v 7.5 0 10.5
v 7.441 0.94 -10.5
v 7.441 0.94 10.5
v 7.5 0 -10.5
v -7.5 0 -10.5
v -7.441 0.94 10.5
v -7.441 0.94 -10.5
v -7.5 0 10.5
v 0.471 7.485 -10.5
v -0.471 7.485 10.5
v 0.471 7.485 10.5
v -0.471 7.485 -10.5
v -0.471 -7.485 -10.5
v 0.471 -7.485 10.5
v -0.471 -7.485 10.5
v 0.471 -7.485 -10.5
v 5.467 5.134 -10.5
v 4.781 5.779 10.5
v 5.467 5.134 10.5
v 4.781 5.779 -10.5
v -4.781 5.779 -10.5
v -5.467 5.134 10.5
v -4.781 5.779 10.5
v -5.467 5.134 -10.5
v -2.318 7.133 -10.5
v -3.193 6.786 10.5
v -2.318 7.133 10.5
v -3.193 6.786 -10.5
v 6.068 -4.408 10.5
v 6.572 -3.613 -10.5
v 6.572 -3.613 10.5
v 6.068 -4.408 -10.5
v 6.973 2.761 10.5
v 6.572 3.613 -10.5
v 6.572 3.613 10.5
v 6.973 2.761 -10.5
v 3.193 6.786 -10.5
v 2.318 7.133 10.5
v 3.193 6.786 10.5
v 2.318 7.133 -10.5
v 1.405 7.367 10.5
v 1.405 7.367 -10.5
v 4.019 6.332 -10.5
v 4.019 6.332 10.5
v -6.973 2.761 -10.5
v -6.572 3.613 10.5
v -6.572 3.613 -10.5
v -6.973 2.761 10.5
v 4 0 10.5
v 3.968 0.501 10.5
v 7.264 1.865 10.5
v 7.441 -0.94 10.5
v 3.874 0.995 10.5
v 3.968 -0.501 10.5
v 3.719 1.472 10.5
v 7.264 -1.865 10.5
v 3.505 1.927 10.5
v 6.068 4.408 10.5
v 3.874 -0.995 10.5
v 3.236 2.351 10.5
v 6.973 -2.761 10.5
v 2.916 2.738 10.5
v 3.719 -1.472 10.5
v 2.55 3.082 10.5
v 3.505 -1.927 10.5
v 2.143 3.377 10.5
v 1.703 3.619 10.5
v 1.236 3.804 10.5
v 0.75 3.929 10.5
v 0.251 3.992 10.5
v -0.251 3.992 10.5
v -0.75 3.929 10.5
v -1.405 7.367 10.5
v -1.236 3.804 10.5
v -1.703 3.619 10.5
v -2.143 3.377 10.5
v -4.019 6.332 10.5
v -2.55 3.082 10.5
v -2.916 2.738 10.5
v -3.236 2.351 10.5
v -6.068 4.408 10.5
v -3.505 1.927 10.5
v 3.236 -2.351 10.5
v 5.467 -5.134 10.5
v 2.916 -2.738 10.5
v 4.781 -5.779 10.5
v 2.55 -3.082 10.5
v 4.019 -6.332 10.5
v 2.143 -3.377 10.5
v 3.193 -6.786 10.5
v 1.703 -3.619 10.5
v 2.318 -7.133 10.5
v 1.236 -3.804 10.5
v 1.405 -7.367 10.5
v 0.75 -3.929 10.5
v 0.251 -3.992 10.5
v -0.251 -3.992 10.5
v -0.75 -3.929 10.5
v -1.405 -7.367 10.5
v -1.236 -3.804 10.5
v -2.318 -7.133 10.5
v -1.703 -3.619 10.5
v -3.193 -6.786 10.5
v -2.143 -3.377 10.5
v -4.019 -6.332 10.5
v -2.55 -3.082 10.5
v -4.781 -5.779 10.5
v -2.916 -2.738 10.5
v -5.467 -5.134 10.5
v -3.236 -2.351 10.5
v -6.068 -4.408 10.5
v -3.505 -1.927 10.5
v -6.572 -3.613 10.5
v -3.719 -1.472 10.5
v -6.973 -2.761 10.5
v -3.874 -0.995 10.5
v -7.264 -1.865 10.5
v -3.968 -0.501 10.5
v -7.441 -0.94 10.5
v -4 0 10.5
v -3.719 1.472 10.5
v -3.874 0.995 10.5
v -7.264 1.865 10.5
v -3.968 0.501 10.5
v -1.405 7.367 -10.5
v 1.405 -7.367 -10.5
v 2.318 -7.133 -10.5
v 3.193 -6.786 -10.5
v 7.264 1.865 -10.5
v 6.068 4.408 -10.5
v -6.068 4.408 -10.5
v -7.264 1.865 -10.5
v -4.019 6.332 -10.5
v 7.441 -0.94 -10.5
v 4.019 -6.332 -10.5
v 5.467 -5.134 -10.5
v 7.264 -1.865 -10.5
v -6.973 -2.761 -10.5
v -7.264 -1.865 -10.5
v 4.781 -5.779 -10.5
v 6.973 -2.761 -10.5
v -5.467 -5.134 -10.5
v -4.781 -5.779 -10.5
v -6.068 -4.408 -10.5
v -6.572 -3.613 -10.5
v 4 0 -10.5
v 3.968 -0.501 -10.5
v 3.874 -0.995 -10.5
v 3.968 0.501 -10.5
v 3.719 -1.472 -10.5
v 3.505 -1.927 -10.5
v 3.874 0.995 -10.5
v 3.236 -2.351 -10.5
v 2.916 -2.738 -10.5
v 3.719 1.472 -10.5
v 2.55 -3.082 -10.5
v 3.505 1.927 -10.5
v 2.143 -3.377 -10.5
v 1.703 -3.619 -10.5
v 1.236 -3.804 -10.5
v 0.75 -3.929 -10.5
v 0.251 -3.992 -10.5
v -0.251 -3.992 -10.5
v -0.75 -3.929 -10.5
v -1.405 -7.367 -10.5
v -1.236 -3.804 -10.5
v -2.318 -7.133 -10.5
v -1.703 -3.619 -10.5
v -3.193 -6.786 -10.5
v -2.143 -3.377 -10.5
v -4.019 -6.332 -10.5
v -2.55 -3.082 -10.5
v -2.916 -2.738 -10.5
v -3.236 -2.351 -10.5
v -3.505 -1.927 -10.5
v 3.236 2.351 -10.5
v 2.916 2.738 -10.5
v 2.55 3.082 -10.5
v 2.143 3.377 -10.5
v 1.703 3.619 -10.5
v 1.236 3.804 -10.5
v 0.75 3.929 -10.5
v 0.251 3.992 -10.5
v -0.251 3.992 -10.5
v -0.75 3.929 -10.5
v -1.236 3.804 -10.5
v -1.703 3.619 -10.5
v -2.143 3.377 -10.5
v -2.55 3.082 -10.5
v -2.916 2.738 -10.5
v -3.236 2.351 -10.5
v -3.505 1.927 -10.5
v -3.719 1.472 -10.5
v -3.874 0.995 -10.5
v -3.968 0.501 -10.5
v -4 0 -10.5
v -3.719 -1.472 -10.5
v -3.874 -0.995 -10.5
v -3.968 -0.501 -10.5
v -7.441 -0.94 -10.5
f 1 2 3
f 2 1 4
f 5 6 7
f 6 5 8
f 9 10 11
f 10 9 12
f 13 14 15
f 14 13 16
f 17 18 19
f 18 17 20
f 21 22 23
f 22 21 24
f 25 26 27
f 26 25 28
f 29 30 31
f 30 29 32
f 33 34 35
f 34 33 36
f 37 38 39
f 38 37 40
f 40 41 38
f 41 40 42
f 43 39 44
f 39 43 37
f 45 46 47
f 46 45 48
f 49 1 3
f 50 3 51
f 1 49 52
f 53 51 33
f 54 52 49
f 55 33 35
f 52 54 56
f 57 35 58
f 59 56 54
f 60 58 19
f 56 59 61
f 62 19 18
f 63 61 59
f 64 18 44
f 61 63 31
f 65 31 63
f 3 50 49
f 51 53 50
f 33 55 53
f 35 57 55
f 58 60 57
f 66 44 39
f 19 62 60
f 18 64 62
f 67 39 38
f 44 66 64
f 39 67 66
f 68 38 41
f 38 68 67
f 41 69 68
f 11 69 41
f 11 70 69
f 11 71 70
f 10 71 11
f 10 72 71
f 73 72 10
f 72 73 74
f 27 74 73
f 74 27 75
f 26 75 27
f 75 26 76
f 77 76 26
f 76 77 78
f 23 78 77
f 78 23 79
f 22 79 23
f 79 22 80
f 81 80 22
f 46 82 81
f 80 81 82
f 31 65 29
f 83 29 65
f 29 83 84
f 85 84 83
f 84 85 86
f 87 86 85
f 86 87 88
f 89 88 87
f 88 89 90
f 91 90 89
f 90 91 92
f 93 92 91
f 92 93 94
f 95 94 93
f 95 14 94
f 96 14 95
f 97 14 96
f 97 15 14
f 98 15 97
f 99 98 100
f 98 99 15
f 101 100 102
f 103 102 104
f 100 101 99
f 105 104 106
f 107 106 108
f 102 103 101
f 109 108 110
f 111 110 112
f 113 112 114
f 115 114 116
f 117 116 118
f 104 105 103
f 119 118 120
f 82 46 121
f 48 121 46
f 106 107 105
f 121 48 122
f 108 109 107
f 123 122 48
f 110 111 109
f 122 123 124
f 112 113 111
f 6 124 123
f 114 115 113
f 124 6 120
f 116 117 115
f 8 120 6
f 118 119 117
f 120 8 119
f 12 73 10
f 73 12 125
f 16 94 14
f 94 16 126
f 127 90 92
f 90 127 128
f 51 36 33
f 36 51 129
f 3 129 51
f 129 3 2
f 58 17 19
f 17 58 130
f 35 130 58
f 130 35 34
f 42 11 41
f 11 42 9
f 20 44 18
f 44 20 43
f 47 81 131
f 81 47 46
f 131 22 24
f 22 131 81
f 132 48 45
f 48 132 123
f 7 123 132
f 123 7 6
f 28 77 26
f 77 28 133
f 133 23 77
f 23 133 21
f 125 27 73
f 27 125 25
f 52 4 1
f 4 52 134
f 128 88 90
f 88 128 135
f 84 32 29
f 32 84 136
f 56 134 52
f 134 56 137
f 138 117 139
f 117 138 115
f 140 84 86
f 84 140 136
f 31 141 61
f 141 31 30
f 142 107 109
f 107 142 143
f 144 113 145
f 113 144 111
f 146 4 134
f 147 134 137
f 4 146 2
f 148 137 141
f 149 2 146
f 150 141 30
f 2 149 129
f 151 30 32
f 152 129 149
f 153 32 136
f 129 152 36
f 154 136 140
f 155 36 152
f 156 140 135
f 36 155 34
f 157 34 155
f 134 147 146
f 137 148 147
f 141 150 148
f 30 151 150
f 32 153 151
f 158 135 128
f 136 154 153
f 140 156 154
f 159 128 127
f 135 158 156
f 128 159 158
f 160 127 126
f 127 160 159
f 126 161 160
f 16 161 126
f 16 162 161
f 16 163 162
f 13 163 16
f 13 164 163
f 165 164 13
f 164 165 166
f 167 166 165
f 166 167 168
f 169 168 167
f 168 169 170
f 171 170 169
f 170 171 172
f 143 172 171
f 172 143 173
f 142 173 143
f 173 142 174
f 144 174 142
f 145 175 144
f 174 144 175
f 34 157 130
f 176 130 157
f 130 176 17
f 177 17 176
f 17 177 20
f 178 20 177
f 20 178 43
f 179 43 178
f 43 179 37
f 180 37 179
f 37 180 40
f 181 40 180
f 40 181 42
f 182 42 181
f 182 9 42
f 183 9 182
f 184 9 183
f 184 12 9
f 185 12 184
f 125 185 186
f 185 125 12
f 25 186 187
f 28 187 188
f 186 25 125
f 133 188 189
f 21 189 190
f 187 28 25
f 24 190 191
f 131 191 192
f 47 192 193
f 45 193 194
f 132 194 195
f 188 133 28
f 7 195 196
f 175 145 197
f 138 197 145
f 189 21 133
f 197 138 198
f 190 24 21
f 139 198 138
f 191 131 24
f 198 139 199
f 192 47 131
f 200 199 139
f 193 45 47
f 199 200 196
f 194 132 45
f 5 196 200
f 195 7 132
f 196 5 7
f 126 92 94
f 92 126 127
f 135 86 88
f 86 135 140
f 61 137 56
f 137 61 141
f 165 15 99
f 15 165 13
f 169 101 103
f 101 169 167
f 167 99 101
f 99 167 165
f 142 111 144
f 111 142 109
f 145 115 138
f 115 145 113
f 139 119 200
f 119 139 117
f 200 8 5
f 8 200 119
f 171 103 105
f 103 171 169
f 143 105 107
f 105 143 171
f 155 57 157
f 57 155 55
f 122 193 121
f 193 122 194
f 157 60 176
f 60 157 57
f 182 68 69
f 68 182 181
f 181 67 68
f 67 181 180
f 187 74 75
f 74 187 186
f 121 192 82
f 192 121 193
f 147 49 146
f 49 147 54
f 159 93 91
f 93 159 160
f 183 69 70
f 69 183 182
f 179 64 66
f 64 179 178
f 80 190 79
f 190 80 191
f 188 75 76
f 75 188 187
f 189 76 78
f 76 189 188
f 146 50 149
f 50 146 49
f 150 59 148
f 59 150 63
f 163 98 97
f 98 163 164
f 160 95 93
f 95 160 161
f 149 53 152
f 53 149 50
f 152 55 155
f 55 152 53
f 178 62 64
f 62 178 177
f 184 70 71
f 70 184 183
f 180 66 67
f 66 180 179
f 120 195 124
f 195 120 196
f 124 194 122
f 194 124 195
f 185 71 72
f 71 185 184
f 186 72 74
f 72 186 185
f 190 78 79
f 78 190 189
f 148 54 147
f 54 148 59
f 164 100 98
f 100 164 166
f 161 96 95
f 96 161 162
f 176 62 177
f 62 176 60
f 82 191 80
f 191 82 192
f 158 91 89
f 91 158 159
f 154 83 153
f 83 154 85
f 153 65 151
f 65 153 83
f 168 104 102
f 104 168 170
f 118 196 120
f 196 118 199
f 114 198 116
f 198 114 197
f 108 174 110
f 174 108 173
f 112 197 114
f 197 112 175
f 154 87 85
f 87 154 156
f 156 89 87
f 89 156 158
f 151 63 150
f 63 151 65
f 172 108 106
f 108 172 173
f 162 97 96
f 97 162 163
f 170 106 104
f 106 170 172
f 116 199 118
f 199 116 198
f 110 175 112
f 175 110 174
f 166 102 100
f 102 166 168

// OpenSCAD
$fn = 50;


difference() {
	union() {
		translate(v = [0, 0, -10.5000000000]) {
			cylinder(h = 21, r = 7.5000000000);
		}
	}
	union() {
		translate(v = [0, 0, -100.0000000000]) {
			cylinder(h = 200, r = 4.0000000000);
		}
	}
}
